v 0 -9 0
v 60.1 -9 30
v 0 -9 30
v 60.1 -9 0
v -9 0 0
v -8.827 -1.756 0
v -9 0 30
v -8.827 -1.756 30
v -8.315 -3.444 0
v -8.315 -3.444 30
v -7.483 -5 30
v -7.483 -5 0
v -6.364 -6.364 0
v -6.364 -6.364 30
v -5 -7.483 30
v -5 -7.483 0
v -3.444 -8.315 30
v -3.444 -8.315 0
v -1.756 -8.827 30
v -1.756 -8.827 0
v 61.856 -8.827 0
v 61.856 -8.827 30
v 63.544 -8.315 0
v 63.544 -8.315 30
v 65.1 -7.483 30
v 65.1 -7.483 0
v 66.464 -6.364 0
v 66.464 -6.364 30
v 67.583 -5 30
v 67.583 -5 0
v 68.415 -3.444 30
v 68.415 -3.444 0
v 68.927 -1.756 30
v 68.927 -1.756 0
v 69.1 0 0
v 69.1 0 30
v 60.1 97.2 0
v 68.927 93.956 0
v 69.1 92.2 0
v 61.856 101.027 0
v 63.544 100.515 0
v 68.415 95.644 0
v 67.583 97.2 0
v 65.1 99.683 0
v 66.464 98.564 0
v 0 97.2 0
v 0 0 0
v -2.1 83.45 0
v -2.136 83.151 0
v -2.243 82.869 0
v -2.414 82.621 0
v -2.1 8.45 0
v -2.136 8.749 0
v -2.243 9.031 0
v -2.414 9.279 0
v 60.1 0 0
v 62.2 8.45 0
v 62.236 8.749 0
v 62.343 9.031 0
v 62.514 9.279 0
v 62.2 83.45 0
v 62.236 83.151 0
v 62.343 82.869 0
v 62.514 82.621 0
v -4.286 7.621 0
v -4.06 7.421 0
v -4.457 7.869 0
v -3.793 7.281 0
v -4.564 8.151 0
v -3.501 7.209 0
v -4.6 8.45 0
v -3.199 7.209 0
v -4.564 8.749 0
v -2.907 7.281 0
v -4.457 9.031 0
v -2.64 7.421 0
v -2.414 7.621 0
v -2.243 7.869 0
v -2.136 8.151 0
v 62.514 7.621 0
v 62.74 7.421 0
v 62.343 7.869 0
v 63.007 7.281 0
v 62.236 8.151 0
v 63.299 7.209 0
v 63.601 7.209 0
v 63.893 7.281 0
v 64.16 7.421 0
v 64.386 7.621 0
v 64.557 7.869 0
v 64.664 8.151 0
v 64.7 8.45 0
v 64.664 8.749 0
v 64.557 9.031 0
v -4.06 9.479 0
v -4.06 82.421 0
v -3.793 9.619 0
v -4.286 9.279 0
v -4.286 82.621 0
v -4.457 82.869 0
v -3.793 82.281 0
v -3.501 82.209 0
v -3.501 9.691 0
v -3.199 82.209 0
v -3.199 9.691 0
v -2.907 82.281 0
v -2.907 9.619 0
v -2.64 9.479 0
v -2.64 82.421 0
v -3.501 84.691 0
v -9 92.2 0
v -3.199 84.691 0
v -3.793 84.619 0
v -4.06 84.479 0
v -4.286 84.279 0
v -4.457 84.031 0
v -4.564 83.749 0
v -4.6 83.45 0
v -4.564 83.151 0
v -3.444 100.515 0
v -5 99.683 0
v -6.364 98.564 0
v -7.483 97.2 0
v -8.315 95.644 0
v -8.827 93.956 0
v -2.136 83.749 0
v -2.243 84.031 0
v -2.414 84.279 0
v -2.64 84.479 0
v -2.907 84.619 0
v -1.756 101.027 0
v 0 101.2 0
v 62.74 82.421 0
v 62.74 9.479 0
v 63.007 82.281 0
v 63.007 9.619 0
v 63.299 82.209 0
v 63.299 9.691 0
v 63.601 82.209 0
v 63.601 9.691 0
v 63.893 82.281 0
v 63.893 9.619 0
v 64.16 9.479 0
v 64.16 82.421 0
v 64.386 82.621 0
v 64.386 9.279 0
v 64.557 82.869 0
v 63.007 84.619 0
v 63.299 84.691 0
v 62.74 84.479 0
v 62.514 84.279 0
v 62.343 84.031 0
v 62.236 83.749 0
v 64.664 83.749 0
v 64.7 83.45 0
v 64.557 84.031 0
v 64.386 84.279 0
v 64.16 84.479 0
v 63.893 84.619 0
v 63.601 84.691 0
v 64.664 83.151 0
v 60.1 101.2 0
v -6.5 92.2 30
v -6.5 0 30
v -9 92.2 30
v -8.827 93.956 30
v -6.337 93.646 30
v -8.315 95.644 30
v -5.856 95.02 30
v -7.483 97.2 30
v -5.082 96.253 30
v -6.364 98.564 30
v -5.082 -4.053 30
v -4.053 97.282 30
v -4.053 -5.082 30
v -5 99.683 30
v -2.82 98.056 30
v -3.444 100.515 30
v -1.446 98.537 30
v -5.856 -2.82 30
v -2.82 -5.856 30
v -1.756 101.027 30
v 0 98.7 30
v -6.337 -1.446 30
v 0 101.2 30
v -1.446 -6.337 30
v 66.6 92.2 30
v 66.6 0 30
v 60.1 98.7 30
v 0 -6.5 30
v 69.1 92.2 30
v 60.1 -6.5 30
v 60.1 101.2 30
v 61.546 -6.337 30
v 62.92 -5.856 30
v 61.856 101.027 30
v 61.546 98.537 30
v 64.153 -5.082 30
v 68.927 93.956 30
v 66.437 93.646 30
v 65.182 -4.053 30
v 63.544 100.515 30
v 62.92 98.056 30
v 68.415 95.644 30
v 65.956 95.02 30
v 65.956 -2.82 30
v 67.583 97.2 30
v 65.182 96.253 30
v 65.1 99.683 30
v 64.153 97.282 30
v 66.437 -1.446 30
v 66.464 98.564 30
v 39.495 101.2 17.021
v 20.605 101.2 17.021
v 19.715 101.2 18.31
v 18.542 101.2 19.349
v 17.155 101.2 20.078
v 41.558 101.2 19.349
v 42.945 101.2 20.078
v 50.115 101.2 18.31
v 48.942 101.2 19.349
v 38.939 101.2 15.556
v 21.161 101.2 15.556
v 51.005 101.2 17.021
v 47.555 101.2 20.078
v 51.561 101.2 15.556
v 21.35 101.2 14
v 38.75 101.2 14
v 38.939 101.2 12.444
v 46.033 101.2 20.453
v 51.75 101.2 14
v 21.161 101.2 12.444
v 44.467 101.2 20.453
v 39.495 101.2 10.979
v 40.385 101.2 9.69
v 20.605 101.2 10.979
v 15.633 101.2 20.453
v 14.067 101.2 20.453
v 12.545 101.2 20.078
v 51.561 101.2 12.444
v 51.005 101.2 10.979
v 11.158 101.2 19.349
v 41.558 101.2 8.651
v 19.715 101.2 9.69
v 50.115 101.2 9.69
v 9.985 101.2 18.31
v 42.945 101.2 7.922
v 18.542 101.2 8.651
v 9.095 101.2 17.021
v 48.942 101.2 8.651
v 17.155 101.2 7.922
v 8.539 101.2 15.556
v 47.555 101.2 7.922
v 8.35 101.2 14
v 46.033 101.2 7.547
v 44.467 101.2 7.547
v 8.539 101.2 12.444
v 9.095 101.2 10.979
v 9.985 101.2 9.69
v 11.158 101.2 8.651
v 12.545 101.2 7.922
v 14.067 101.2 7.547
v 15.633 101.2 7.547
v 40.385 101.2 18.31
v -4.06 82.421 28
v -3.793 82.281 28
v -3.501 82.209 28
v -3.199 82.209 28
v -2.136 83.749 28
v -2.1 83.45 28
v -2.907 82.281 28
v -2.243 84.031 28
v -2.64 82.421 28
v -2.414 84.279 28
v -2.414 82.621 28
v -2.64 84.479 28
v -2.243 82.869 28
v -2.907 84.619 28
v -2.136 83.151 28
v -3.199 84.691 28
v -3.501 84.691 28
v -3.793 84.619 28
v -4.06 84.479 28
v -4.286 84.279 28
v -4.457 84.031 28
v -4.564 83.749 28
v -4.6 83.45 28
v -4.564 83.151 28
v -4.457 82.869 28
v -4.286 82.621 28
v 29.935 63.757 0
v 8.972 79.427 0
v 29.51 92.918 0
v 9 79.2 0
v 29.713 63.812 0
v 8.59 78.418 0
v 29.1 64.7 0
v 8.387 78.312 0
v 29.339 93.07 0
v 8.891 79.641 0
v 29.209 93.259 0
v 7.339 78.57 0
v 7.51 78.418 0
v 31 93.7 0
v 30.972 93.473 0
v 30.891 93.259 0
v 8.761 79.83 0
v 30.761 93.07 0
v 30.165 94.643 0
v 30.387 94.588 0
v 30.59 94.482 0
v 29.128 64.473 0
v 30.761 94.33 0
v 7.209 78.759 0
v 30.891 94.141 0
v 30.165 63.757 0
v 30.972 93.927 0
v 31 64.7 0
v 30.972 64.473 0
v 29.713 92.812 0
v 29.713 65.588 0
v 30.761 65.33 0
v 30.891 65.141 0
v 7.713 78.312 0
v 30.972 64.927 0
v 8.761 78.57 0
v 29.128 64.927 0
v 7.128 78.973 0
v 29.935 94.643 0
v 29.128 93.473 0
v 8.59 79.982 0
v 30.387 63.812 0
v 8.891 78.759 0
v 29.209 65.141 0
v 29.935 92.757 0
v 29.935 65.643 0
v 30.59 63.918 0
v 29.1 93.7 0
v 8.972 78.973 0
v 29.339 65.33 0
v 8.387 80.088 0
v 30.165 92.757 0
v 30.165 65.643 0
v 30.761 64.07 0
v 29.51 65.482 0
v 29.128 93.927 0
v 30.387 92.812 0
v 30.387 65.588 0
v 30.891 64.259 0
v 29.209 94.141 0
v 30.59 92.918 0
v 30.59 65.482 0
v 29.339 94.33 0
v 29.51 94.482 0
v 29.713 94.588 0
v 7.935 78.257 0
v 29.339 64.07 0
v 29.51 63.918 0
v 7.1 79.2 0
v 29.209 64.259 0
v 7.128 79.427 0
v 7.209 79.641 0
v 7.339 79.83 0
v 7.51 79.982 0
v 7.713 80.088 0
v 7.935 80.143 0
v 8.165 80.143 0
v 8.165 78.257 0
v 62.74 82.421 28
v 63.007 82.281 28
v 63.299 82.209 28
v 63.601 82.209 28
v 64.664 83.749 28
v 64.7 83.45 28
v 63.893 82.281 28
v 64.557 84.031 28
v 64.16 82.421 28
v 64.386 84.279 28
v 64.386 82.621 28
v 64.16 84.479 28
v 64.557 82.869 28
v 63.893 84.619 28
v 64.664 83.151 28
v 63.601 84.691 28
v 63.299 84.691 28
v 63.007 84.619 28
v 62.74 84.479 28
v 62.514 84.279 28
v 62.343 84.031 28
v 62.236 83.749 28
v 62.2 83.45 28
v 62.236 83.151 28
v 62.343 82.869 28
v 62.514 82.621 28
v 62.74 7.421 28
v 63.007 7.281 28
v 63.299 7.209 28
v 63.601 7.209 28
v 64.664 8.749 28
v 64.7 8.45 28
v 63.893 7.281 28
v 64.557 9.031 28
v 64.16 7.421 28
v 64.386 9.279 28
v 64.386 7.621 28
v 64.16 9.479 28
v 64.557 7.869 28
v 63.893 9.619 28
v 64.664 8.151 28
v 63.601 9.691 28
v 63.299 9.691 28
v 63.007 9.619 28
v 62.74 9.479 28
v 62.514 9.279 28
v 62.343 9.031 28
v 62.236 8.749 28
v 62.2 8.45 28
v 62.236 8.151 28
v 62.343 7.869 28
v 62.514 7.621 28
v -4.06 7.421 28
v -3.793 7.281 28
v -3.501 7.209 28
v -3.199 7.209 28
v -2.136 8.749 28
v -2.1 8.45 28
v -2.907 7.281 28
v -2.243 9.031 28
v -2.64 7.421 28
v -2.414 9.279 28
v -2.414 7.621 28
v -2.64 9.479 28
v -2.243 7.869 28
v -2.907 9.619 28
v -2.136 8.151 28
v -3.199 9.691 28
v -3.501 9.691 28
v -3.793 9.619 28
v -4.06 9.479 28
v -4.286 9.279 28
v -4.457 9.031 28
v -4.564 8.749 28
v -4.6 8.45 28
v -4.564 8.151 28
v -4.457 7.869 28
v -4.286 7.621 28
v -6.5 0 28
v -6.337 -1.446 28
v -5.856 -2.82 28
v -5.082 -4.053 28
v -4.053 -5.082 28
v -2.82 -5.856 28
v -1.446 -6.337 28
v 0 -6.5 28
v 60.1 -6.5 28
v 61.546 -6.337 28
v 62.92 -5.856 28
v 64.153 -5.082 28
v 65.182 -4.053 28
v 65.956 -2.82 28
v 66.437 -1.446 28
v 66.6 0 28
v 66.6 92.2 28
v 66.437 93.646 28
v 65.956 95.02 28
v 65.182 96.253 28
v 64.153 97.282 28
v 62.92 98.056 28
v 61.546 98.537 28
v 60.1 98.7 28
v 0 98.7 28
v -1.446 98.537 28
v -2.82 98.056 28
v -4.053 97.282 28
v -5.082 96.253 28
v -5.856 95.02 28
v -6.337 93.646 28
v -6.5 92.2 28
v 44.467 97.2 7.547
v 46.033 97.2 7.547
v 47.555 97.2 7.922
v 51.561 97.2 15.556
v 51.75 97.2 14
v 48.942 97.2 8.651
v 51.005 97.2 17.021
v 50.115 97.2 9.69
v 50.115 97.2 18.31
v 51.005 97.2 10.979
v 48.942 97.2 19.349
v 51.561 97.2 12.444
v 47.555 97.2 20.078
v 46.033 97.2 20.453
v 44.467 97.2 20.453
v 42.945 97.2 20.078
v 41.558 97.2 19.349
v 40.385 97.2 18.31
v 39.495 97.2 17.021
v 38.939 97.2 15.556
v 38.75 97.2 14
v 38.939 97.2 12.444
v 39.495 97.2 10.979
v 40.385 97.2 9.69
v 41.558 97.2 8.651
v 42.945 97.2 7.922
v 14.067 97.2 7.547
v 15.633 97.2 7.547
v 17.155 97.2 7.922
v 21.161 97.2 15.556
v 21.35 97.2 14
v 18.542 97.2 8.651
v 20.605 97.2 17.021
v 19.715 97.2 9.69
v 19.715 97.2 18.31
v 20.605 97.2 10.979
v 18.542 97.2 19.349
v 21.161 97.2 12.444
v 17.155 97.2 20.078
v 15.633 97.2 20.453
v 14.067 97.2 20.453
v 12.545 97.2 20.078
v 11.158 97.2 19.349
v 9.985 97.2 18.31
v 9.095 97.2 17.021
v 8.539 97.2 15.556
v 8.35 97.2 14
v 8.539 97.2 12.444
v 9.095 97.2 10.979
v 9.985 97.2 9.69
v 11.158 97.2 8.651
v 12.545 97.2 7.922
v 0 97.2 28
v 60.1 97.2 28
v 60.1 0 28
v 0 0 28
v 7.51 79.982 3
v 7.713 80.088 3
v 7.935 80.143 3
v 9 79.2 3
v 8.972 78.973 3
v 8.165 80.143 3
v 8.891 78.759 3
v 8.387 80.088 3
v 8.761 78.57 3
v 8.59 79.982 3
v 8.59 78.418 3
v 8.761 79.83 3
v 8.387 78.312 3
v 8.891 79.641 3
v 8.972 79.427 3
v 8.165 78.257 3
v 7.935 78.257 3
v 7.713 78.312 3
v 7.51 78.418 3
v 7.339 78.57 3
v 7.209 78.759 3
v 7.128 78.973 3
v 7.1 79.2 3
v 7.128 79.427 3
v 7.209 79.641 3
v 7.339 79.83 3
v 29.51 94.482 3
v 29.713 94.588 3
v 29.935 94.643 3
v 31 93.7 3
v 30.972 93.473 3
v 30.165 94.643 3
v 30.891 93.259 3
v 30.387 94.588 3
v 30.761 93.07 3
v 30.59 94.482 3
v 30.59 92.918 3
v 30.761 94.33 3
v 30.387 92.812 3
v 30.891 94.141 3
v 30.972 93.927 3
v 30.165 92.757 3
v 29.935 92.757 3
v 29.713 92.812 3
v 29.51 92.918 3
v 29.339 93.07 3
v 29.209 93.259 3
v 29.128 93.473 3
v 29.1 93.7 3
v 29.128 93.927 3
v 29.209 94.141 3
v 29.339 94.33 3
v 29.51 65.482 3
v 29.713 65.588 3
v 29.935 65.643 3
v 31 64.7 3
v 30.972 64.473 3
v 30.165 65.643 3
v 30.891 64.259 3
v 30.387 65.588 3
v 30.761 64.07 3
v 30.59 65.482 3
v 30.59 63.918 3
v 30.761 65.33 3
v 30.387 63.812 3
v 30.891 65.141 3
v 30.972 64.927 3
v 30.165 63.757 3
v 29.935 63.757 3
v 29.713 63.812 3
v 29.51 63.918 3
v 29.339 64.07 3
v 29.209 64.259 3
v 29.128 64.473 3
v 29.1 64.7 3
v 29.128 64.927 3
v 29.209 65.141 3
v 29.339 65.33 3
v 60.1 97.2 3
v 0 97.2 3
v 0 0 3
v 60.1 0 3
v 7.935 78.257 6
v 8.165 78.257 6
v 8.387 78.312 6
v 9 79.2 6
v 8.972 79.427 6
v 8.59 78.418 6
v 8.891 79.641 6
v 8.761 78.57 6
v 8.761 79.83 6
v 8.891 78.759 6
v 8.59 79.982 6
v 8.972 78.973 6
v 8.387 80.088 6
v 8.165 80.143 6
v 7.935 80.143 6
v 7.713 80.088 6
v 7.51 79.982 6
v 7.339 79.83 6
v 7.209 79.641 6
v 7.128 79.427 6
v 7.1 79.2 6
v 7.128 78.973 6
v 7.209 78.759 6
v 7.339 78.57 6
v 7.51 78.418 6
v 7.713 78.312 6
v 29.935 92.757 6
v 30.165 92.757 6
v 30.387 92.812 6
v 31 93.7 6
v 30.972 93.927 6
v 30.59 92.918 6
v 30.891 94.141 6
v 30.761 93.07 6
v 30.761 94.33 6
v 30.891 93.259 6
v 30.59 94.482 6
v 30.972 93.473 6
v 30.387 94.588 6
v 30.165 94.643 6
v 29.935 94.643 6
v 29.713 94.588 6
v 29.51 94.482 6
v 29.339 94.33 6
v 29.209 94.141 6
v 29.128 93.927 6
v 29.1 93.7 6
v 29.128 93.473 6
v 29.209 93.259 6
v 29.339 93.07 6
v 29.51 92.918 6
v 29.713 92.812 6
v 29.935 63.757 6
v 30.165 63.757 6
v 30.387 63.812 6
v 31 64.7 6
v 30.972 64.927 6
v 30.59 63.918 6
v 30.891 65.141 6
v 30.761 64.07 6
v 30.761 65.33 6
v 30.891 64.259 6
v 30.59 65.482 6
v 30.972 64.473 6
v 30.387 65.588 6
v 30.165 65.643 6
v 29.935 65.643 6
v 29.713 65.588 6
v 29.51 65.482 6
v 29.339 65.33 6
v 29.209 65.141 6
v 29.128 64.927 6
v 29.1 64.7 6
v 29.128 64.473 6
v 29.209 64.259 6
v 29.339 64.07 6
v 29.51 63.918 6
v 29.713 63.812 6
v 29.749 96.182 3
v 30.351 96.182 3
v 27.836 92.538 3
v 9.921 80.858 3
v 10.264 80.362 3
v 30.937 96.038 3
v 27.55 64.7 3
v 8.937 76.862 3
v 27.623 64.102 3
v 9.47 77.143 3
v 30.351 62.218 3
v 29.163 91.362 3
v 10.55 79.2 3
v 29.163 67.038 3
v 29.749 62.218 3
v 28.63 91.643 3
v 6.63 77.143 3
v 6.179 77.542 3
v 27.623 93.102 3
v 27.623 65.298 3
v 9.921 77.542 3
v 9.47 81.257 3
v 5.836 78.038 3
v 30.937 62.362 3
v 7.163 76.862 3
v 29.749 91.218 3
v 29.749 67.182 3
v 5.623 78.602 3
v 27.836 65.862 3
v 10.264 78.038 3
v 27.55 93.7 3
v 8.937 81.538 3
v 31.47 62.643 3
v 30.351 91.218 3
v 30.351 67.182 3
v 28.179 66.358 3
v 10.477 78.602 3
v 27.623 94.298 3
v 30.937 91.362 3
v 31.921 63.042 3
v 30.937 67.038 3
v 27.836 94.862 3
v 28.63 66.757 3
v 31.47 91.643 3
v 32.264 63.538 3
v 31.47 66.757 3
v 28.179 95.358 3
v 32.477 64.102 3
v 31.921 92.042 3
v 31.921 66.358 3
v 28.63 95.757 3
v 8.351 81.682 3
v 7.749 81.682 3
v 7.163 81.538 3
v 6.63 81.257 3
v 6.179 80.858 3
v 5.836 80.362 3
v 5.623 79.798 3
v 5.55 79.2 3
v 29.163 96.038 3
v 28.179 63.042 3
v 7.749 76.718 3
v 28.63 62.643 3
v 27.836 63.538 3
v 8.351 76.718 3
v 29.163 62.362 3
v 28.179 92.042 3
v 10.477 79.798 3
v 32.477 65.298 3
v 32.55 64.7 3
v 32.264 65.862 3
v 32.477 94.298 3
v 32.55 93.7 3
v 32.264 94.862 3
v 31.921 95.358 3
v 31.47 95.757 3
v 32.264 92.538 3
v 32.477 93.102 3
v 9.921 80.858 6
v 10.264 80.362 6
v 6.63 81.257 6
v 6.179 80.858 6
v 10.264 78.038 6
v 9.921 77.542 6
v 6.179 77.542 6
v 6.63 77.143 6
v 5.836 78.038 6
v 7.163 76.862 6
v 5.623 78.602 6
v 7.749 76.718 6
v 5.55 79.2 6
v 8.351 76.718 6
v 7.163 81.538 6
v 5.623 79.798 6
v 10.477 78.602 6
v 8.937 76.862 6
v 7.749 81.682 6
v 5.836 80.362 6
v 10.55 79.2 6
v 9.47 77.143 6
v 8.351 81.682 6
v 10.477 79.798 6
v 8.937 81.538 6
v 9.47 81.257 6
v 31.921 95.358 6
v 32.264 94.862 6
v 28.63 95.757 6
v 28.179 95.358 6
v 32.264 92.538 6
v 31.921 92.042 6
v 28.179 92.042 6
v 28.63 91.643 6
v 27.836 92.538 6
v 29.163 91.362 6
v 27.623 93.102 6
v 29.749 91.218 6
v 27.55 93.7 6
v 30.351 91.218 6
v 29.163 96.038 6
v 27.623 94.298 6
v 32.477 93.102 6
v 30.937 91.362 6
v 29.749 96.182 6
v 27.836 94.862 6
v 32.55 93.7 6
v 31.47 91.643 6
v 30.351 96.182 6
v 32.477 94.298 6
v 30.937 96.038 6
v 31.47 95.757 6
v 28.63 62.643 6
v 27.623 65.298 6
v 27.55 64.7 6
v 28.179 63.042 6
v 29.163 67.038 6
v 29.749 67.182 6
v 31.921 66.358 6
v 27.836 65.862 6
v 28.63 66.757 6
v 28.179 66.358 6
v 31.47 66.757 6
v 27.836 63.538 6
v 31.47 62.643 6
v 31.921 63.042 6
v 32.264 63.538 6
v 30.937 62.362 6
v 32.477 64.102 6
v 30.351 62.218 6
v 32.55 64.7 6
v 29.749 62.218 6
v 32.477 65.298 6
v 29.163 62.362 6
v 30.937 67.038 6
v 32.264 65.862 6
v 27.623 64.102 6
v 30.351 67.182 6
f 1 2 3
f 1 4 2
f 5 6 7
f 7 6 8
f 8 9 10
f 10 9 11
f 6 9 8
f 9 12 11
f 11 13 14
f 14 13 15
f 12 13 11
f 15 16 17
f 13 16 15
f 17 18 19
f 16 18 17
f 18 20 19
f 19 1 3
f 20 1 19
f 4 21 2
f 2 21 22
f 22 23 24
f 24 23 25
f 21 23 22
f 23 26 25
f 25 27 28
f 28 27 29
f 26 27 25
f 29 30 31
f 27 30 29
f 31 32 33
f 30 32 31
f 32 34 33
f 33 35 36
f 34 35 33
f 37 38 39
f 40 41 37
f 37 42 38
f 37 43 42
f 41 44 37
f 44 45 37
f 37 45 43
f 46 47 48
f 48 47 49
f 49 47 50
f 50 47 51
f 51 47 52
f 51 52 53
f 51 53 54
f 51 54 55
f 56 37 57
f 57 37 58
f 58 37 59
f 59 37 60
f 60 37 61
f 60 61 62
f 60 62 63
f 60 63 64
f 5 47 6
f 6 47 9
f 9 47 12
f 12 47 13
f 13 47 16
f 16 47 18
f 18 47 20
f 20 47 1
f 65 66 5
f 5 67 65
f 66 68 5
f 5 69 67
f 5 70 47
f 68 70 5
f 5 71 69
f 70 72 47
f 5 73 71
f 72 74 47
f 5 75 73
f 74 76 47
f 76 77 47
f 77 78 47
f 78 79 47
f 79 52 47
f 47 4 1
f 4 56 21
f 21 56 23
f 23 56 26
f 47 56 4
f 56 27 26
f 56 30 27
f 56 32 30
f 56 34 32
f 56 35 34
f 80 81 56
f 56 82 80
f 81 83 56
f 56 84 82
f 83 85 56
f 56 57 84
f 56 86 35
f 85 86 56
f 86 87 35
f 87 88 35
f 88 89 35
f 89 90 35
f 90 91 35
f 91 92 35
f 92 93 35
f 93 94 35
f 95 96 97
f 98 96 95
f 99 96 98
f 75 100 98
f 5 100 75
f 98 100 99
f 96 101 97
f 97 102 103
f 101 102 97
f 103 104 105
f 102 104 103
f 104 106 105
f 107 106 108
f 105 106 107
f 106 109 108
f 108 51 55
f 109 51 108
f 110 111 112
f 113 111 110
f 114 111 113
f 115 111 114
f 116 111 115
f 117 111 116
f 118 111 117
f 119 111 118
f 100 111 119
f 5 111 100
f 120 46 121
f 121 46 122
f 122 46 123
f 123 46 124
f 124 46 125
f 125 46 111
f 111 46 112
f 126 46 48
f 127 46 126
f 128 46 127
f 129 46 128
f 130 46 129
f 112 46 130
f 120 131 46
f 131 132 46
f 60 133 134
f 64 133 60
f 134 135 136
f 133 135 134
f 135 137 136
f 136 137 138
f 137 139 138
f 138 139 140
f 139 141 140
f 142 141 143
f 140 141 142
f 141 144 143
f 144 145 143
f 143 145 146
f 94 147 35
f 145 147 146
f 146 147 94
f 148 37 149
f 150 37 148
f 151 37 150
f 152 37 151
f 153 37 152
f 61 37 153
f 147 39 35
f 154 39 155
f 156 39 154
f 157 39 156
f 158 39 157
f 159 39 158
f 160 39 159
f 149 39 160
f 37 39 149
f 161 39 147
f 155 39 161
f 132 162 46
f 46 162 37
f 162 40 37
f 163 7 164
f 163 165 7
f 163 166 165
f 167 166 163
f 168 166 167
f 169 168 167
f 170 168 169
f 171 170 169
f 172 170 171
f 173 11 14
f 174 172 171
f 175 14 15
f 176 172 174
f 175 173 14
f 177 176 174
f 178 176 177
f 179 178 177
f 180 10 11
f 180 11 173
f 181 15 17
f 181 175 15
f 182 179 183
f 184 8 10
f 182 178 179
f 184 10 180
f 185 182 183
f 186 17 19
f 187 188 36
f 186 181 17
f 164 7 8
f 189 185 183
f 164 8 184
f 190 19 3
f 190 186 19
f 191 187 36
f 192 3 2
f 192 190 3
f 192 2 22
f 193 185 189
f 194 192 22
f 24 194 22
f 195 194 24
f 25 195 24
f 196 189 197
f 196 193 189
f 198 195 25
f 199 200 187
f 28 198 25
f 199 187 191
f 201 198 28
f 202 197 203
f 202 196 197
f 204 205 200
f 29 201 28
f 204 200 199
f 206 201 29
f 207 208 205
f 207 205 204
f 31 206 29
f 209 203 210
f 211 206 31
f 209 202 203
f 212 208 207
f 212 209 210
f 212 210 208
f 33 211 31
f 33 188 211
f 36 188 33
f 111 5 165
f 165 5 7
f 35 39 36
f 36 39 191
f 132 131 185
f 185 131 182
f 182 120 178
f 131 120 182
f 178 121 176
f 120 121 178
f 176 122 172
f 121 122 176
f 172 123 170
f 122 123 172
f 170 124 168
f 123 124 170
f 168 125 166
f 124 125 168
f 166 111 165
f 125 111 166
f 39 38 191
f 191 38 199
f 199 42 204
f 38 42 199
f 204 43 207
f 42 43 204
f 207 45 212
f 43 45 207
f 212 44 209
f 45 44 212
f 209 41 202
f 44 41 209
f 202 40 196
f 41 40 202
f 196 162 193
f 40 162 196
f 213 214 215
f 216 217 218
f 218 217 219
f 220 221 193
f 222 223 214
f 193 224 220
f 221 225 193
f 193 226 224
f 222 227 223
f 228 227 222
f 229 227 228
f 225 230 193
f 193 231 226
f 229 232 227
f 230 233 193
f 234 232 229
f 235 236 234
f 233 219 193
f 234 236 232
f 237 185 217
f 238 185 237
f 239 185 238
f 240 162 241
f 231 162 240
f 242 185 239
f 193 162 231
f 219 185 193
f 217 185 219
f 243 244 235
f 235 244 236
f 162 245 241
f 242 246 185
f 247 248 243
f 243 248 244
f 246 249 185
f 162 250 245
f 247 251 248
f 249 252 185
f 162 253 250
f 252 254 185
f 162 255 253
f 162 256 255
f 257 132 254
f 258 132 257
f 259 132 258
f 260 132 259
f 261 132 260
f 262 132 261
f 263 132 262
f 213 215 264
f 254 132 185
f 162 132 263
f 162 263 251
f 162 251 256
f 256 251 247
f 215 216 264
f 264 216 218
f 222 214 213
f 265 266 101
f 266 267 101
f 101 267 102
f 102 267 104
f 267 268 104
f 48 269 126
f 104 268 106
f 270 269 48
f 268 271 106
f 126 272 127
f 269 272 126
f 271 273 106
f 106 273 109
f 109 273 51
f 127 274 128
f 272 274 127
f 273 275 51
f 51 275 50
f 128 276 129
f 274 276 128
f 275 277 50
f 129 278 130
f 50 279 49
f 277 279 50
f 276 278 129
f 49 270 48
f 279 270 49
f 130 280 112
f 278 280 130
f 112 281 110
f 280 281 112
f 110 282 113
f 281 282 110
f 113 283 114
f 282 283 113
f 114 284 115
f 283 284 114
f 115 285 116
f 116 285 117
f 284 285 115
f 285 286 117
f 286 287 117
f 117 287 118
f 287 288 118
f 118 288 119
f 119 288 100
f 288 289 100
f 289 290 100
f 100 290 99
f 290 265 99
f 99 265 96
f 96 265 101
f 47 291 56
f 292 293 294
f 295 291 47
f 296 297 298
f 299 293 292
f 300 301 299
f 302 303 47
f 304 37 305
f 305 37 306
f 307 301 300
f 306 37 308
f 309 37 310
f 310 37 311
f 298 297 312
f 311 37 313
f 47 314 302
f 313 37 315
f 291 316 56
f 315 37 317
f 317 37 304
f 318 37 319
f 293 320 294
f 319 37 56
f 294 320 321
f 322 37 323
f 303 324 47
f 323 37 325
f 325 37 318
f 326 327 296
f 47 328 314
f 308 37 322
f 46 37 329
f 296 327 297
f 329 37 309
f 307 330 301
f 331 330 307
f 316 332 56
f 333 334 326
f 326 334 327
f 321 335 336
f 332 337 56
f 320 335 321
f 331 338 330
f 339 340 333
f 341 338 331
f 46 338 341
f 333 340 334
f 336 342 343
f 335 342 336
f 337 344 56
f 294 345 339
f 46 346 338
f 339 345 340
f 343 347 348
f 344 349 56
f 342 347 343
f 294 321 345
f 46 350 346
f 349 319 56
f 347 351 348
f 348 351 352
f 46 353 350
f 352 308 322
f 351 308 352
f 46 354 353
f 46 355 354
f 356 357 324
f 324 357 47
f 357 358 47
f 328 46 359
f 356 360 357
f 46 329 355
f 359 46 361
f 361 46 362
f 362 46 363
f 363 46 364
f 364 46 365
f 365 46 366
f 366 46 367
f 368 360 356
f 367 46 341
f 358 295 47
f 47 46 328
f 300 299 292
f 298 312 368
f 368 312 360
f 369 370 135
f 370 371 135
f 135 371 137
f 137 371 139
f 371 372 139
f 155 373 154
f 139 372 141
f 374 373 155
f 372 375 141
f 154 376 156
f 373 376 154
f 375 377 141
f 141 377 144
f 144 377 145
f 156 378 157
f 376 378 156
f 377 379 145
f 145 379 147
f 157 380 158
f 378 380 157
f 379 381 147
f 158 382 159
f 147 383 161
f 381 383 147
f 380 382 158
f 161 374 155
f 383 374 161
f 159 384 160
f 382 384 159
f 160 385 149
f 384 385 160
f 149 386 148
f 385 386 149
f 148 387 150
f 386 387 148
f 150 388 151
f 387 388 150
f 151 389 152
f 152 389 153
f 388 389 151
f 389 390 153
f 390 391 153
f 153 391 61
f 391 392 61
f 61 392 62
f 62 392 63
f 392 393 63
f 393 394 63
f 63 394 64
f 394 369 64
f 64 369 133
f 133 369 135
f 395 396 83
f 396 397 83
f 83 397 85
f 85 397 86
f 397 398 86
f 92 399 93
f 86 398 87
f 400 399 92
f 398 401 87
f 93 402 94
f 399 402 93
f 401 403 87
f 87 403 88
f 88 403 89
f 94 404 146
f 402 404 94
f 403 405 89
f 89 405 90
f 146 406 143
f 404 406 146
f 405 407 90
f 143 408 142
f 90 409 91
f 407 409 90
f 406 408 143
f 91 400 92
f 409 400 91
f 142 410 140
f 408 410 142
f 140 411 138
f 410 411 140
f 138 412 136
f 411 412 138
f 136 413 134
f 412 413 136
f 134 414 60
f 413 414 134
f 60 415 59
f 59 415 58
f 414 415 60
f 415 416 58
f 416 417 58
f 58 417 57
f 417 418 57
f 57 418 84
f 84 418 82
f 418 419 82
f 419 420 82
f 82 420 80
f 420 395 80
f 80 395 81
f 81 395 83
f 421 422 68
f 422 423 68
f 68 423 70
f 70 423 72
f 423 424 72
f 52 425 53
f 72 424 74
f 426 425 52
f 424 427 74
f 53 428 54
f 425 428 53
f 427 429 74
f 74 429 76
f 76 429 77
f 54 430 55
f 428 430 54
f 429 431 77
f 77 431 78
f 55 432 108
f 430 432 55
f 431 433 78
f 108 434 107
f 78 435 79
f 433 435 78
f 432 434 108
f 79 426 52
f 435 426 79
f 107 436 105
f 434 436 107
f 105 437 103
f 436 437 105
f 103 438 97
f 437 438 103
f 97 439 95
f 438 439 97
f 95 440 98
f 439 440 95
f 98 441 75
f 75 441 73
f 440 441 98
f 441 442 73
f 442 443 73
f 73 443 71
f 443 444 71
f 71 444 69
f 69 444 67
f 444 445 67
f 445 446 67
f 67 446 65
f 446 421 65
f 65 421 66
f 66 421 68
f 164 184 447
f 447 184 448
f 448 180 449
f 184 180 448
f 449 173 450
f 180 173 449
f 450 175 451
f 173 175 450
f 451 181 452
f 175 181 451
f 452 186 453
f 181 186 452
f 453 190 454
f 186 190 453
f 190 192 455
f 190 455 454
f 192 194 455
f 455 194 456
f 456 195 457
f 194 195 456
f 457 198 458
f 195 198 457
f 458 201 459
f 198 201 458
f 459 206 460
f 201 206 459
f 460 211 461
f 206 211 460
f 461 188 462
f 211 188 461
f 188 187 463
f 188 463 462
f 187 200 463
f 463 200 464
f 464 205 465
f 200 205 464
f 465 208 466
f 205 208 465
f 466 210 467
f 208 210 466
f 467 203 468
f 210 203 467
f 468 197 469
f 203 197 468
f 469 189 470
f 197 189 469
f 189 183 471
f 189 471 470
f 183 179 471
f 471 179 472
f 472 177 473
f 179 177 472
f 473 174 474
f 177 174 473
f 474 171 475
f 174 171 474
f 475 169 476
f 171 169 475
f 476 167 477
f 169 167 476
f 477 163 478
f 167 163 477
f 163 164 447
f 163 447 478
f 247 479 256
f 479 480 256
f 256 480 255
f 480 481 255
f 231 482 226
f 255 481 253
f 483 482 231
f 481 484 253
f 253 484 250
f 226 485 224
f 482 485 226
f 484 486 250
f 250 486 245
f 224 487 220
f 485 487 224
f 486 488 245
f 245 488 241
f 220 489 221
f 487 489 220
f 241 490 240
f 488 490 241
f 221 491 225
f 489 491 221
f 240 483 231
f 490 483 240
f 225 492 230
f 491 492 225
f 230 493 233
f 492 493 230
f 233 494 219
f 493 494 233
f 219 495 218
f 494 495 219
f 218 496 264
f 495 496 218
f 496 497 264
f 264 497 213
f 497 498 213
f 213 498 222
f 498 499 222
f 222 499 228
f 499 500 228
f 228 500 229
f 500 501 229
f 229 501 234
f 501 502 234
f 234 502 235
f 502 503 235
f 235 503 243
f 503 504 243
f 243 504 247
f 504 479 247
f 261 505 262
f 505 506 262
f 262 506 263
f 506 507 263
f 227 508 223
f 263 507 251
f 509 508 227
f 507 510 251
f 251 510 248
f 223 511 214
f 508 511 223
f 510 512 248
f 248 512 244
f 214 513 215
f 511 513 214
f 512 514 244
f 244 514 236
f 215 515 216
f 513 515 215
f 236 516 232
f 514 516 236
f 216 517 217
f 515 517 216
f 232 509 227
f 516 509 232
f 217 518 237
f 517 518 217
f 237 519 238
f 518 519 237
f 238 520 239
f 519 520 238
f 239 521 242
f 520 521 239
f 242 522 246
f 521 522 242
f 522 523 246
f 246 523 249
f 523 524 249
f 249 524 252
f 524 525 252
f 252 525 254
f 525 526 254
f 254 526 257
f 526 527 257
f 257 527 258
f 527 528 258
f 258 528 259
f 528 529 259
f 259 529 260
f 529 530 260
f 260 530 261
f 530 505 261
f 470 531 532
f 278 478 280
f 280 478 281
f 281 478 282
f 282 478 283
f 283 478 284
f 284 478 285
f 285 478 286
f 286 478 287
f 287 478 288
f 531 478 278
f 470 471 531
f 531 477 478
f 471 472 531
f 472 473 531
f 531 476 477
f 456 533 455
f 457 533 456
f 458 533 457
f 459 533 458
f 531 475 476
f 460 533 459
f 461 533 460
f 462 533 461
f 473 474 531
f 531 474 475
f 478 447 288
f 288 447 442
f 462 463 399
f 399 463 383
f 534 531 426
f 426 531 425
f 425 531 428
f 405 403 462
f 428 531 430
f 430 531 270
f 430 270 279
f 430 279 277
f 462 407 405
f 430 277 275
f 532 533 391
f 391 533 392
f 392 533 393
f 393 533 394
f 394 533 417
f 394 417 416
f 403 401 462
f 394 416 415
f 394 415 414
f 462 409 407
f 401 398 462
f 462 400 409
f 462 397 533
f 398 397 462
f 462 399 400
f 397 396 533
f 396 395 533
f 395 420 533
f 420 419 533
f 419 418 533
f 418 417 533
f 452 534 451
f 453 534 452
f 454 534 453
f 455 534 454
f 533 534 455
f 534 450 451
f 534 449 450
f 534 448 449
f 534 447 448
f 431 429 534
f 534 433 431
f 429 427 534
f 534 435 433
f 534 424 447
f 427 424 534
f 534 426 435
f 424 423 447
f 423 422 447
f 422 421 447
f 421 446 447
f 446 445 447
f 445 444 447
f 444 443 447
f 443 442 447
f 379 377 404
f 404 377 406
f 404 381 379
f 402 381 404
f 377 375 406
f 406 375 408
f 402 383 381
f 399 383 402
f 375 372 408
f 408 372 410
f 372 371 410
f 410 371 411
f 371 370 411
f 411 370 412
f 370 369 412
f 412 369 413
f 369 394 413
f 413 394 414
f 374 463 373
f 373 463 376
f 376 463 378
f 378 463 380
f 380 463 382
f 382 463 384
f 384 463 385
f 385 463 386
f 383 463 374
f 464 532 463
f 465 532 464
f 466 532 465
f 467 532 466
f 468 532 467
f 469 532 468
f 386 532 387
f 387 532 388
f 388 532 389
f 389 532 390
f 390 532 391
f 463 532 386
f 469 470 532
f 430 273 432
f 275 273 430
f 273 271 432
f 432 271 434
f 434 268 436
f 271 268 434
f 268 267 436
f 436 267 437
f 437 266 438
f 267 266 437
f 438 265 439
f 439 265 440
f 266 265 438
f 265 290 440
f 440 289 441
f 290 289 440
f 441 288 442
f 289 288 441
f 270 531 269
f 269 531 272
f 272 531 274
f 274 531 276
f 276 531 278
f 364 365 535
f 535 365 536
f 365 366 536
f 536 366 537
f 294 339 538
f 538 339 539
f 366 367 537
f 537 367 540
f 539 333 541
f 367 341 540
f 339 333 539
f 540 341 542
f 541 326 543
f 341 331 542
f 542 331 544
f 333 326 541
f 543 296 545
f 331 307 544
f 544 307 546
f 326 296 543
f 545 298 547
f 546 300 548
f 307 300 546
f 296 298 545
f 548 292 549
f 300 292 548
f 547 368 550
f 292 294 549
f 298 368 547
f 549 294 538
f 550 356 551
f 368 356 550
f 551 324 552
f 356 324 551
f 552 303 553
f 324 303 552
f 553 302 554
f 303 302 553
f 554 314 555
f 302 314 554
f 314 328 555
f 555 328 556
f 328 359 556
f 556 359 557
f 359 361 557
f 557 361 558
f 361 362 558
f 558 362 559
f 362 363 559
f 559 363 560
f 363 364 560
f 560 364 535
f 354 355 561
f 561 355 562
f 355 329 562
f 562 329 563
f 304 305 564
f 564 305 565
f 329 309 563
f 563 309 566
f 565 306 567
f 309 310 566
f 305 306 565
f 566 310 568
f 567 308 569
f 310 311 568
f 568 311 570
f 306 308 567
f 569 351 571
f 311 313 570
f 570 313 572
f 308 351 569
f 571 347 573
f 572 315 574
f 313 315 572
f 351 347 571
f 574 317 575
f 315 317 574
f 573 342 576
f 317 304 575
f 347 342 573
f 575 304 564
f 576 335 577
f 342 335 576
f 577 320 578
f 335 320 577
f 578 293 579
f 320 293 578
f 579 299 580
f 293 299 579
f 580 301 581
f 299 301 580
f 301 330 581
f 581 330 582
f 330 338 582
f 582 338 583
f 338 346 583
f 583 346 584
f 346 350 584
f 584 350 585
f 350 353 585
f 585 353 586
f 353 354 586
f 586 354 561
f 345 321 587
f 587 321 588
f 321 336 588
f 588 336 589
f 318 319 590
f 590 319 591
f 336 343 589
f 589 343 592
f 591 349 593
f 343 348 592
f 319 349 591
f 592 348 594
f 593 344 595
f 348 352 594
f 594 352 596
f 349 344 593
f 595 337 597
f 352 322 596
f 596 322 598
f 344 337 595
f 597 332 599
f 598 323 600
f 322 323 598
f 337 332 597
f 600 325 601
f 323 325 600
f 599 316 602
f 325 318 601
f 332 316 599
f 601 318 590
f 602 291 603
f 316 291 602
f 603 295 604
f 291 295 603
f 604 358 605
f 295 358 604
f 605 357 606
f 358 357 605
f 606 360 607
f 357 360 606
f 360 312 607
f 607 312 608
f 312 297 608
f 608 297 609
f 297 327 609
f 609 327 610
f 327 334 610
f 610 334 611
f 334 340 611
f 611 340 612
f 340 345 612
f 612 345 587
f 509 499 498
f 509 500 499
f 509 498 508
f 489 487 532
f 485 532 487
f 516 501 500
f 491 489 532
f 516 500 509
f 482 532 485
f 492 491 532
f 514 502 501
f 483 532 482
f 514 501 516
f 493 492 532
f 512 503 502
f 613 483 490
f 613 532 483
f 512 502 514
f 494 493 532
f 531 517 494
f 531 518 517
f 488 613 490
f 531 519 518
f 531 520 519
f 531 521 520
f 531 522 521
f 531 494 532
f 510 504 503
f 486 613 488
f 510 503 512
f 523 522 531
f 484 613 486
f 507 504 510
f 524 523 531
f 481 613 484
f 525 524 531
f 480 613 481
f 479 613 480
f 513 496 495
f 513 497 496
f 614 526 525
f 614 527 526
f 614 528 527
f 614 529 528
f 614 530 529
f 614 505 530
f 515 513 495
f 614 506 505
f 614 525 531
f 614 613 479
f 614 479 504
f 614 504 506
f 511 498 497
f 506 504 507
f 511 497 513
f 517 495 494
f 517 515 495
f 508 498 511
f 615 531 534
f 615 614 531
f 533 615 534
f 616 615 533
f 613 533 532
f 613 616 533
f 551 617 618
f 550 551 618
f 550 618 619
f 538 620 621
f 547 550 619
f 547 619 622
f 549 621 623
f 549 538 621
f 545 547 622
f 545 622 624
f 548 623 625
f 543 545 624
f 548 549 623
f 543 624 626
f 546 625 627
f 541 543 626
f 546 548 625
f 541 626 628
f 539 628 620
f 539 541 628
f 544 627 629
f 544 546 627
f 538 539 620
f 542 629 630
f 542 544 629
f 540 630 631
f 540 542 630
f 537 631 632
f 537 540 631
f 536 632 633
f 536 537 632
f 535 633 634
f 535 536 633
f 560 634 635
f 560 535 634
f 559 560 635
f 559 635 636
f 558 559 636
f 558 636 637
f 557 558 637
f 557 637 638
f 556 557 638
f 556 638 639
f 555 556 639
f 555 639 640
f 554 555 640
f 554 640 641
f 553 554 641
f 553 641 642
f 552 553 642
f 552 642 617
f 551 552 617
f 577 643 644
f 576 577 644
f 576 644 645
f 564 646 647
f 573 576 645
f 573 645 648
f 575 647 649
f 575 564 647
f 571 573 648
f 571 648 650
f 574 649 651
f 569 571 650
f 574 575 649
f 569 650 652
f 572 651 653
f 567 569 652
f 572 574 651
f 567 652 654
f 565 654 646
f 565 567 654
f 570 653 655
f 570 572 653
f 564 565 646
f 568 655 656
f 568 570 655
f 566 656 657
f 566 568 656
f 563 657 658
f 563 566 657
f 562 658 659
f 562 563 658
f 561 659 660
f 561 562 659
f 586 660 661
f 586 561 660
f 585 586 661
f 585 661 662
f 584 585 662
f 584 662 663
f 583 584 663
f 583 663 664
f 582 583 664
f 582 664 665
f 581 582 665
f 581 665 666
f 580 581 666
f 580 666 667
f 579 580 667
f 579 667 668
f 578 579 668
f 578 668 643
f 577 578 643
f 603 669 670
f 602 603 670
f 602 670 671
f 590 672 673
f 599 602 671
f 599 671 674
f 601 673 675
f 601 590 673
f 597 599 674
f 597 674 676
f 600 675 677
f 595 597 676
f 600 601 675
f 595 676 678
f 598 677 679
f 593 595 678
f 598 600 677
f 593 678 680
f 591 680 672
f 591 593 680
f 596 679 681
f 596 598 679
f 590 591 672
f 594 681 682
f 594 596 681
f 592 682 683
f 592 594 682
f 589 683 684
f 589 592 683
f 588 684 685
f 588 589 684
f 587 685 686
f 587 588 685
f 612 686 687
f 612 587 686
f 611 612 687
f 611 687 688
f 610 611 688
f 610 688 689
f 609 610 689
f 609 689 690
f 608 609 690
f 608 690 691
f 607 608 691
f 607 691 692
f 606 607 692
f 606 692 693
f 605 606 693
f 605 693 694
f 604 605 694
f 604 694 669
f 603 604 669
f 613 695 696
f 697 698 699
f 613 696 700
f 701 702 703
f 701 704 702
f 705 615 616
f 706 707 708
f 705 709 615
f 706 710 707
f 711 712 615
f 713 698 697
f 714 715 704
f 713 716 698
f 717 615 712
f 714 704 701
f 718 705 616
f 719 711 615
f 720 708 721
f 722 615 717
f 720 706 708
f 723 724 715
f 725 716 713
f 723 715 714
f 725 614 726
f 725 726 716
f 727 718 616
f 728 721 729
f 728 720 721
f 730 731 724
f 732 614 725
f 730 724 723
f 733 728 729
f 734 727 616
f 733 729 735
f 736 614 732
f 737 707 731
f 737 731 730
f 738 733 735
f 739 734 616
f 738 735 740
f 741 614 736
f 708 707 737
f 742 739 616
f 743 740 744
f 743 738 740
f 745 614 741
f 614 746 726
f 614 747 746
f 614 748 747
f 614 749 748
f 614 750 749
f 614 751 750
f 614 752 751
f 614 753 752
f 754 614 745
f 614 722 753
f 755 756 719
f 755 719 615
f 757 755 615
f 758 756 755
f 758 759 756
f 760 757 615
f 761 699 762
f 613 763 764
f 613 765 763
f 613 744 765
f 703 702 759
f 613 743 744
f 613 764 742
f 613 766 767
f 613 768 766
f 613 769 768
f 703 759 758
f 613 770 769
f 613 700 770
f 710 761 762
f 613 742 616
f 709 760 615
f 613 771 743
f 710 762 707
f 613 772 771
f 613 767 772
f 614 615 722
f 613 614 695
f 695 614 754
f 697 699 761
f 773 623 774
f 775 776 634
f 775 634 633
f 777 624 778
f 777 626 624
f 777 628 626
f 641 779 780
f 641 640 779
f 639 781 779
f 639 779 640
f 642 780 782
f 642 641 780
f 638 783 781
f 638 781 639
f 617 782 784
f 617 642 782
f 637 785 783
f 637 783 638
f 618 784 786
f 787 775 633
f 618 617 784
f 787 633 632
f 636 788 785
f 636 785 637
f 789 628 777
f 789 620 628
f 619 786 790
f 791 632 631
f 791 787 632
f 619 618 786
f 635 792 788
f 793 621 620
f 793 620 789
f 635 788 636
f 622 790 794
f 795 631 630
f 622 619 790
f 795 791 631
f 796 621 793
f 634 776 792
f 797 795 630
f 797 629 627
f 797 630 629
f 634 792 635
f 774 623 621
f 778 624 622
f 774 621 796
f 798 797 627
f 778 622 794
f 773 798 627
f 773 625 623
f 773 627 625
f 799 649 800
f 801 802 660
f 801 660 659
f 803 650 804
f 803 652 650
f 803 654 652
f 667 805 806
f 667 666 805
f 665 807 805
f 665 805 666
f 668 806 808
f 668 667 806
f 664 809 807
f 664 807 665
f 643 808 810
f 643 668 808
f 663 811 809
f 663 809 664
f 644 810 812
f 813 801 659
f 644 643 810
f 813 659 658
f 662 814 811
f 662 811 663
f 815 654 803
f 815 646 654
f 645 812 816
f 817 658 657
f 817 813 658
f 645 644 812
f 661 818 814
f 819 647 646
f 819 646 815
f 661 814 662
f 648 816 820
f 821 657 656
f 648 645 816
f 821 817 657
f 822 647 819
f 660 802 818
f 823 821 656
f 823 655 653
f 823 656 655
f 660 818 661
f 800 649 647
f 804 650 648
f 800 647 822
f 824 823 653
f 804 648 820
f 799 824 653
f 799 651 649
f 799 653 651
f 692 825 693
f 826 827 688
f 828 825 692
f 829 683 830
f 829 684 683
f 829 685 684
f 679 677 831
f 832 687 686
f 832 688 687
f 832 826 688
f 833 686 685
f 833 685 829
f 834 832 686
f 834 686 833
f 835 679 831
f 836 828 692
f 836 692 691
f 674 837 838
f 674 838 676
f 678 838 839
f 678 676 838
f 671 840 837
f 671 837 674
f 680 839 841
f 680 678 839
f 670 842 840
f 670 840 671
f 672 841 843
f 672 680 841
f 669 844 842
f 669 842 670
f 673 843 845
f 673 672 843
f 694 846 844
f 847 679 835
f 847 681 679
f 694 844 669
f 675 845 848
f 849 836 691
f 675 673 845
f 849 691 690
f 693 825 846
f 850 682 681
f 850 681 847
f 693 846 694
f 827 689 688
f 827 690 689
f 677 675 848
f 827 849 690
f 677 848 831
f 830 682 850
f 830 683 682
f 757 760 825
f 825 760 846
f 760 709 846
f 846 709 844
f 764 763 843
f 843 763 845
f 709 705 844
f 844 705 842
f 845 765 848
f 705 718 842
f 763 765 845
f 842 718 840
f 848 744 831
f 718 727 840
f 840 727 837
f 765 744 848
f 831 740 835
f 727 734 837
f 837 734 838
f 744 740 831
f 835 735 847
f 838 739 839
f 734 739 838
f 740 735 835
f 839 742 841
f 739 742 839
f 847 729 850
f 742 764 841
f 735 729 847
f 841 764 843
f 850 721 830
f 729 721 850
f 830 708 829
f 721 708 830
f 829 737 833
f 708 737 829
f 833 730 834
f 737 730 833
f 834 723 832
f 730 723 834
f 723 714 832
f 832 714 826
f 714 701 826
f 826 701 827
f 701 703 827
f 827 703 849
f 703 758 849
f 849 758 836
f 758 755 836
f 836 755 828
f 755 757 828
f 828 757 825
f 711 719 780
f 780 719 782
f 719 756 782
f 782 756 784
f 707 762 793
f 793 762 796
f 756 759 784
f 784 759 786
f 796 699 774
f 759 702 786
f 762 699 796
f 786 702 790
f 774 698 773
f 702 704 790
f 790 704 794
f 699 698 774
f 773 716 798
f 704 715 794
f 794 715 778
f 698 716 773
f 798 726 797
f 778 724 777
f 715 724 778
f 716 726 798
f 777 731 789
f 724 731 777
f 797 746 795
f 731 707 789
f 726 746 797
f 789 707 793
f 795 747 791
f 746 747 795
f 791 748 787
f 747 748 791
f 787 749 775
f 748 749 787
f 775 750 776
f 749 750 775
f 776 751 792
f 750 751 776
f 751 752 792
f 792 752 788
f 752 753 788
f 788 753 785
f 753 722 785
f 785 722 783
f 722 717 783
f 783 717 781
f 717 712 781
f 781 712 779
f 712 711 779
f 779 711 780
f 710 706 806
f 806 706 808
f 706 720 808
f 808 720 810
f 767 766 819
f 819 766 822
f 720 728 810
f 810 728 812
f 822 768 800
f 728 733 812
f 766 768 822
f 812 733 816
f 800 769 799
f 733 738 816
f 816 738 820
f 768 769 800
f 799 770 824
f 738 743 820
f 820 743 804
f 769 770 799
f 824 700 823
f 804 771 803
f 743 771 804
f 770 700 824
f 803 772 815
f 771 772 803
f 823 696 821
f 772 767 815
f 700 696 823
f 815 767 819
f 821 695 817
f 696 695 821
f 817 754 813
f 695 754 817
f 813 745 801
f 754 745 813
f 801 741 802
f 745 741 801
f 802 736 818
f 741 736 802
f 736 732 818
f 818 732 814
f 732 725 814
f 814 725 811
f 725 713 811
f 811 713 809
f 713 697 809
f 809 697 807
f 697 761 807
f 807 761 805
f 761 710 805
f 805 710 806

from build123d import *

# Parameters (mm, degrees)
SKETCH_W        = 60.1
SKETCH_H        = 97.2
PAD_DEPTH       = 30
POCKET_DEPTH    = 2
SKETCH002_W     = 60.1
SKETCH002_H     = 97.2
SKETCH002_R     = 0.95
PAD001_DEPTH    = 3
SKETCH003_R     = 2.5
SKETCH003_R_2   = 0.95
PAD002_DEPTH    = 3
SKETCH004_R     = 6.5
POCKET001_DEPTH = 4.001
SKETCH005_R     = 1.25
POCKET002_DEPTH = 28.001


with BuildPart() as part:
    # Sketch → Pad (new body)
    with BuildSketch(Plane.XY):
        with BuildLine():
            Line((0, -9), (60.1, -9))
            ThreePointArc((60.1, -9), (66.463961, -6.363961), (69.1, 0))
            Line((69.1, 0), (69.1, 92.2))
            ThreePointArc((69.1, 92.2), (66.463961, 98.563961), (60.1, 101.2))
            Line((60.1, 101.2), (0, 101.2))
            ThreePointArc((0, 101.2), (-6.363961, 98.563961), (-9, 92.2))
            Line((-9, 92.2), (-9, 0))
            ThreePointArc((-9, 0), (-6.363961, -6.363961), (0, -9))
        make_face()
        with Locations((30.05, 48.6)):
            Rectangle(SKETCH_W, SKETCH_H, mode=Mode.SUBTRACT)
    extrude(amount=PAD_DEPTH)

    # Sketch001 (on Face14 of Pad) → Pocket (cut)
    with BuildSketch(Plane.XY.offset(30)):
        with BuildLine():
            Line((0, 98.7), (60.1, 98.7))
            ThreePointArc((66.6, 92.2), (64.696194, 96.796194), (60.1, 98.7))
            Line((66.6, 92.2), (66.6, 0))
            ThreePointArc((60.1, -6.5), (64.696194, -4.596194), (66.6, 0))
            Line((60.1, -6.5), (0, -6.5))
            ThreePointArc((-6.5, 0), (-4.596194, -4.596194), (0, -6.5))
            Line((-6.5, 0), (-6.5, 92.2))
            ThreePointArc((0, 98.7), (-4.596194, 96.796194), (-6.5, 92.2))
        make_face()
    extrude(amount=-POCKET_DEPTH, mode=Mode.SUBTRACT)

    # Sketch002 (on Face4 of Pocket) → Pad001 (join)
    with BuildSketch(Plane(origin=(0, 0, 0), x_dir=(1, 0, 0), z_dir=(0, 0, -1))):
        with Locations((30.05, -48.6)):
            Rectangle(SKETCH002_W, SKETCH002_H)
        with Locations((8.05, -79.2)):
            Circle(SKETCH002_R, mode=Mode.SUBTRACT)
        with Locations((30.05, -64.7)):
            Circle(SKETCH002_R, mode=Mode.SUBTRACT)
        with Locations((30.05, -93.7)):
            Circle(SKETCH002_R, mode=Mode.SUBTRACT)
    extrude(amount=-PAD001_DEPTH)

    # Sketch003 (on Face24 of Pad001) → Pad002 (join)
    with BuildSketch(Plane.XY.offset(3)):
        with Locations((8.05, 79.2)):
            Circle(SKETCH003_R)
        with Locations((8.05, 79.2)):
            Circle(SKETCH003_R_2, mode=Mode.SUBTRACT)
        with Locations((30.05, 93.7)):
            Circle(SKETCH003_R)
        with Locations((30.05, 93.7)):
            Circle(SKETCH003_R_2, mode=Mode.SUBTRACT)
        with Locations((30.05, 64.7)):
            Circle(SKETCH003_R)
        with Locations((30.05, 64.7)):
            Circle(SKETCH003_R_2, mode=Mode.SUBTRACT)
    extrude(amount=PAD002_DEPTH)

    # Sketch004 (on Face28 of Pad002) → Pocket001 (cut, through all)
    with BuildSketch(Plane.XZ.offset(-97.2)):
        with Locations((14.85, 14)):
            Circle(SKETCH004_R)
        with Locations((45.25, 14)):
            Circle(SKETCH004_R)
    extrude(amount=-POCKET001_DEPTH, mode=Mode.SUBTRACT)

    # Sketch005 (on Face25 of Pocket001) → Pocket002 (cut, through all)
    with BuildSketch(Plane.XY.offset(28)):
        with Locations((-3.35, 83.45)):
            Circle(SKETCH005_R)
        with Locations((-3.35, 8.45)):
            Circle(SKETCH005_R)
        with Locations((63.45, 83.45)):
            Circle(SKETCH005_R)
        with Locations((63.45, 8.45)):
            Circle(SKETCH005_R)
    extrude(amount=-POCKET002_DEPTH, mode=Mode.SUBTRACT)


solid = part.part
